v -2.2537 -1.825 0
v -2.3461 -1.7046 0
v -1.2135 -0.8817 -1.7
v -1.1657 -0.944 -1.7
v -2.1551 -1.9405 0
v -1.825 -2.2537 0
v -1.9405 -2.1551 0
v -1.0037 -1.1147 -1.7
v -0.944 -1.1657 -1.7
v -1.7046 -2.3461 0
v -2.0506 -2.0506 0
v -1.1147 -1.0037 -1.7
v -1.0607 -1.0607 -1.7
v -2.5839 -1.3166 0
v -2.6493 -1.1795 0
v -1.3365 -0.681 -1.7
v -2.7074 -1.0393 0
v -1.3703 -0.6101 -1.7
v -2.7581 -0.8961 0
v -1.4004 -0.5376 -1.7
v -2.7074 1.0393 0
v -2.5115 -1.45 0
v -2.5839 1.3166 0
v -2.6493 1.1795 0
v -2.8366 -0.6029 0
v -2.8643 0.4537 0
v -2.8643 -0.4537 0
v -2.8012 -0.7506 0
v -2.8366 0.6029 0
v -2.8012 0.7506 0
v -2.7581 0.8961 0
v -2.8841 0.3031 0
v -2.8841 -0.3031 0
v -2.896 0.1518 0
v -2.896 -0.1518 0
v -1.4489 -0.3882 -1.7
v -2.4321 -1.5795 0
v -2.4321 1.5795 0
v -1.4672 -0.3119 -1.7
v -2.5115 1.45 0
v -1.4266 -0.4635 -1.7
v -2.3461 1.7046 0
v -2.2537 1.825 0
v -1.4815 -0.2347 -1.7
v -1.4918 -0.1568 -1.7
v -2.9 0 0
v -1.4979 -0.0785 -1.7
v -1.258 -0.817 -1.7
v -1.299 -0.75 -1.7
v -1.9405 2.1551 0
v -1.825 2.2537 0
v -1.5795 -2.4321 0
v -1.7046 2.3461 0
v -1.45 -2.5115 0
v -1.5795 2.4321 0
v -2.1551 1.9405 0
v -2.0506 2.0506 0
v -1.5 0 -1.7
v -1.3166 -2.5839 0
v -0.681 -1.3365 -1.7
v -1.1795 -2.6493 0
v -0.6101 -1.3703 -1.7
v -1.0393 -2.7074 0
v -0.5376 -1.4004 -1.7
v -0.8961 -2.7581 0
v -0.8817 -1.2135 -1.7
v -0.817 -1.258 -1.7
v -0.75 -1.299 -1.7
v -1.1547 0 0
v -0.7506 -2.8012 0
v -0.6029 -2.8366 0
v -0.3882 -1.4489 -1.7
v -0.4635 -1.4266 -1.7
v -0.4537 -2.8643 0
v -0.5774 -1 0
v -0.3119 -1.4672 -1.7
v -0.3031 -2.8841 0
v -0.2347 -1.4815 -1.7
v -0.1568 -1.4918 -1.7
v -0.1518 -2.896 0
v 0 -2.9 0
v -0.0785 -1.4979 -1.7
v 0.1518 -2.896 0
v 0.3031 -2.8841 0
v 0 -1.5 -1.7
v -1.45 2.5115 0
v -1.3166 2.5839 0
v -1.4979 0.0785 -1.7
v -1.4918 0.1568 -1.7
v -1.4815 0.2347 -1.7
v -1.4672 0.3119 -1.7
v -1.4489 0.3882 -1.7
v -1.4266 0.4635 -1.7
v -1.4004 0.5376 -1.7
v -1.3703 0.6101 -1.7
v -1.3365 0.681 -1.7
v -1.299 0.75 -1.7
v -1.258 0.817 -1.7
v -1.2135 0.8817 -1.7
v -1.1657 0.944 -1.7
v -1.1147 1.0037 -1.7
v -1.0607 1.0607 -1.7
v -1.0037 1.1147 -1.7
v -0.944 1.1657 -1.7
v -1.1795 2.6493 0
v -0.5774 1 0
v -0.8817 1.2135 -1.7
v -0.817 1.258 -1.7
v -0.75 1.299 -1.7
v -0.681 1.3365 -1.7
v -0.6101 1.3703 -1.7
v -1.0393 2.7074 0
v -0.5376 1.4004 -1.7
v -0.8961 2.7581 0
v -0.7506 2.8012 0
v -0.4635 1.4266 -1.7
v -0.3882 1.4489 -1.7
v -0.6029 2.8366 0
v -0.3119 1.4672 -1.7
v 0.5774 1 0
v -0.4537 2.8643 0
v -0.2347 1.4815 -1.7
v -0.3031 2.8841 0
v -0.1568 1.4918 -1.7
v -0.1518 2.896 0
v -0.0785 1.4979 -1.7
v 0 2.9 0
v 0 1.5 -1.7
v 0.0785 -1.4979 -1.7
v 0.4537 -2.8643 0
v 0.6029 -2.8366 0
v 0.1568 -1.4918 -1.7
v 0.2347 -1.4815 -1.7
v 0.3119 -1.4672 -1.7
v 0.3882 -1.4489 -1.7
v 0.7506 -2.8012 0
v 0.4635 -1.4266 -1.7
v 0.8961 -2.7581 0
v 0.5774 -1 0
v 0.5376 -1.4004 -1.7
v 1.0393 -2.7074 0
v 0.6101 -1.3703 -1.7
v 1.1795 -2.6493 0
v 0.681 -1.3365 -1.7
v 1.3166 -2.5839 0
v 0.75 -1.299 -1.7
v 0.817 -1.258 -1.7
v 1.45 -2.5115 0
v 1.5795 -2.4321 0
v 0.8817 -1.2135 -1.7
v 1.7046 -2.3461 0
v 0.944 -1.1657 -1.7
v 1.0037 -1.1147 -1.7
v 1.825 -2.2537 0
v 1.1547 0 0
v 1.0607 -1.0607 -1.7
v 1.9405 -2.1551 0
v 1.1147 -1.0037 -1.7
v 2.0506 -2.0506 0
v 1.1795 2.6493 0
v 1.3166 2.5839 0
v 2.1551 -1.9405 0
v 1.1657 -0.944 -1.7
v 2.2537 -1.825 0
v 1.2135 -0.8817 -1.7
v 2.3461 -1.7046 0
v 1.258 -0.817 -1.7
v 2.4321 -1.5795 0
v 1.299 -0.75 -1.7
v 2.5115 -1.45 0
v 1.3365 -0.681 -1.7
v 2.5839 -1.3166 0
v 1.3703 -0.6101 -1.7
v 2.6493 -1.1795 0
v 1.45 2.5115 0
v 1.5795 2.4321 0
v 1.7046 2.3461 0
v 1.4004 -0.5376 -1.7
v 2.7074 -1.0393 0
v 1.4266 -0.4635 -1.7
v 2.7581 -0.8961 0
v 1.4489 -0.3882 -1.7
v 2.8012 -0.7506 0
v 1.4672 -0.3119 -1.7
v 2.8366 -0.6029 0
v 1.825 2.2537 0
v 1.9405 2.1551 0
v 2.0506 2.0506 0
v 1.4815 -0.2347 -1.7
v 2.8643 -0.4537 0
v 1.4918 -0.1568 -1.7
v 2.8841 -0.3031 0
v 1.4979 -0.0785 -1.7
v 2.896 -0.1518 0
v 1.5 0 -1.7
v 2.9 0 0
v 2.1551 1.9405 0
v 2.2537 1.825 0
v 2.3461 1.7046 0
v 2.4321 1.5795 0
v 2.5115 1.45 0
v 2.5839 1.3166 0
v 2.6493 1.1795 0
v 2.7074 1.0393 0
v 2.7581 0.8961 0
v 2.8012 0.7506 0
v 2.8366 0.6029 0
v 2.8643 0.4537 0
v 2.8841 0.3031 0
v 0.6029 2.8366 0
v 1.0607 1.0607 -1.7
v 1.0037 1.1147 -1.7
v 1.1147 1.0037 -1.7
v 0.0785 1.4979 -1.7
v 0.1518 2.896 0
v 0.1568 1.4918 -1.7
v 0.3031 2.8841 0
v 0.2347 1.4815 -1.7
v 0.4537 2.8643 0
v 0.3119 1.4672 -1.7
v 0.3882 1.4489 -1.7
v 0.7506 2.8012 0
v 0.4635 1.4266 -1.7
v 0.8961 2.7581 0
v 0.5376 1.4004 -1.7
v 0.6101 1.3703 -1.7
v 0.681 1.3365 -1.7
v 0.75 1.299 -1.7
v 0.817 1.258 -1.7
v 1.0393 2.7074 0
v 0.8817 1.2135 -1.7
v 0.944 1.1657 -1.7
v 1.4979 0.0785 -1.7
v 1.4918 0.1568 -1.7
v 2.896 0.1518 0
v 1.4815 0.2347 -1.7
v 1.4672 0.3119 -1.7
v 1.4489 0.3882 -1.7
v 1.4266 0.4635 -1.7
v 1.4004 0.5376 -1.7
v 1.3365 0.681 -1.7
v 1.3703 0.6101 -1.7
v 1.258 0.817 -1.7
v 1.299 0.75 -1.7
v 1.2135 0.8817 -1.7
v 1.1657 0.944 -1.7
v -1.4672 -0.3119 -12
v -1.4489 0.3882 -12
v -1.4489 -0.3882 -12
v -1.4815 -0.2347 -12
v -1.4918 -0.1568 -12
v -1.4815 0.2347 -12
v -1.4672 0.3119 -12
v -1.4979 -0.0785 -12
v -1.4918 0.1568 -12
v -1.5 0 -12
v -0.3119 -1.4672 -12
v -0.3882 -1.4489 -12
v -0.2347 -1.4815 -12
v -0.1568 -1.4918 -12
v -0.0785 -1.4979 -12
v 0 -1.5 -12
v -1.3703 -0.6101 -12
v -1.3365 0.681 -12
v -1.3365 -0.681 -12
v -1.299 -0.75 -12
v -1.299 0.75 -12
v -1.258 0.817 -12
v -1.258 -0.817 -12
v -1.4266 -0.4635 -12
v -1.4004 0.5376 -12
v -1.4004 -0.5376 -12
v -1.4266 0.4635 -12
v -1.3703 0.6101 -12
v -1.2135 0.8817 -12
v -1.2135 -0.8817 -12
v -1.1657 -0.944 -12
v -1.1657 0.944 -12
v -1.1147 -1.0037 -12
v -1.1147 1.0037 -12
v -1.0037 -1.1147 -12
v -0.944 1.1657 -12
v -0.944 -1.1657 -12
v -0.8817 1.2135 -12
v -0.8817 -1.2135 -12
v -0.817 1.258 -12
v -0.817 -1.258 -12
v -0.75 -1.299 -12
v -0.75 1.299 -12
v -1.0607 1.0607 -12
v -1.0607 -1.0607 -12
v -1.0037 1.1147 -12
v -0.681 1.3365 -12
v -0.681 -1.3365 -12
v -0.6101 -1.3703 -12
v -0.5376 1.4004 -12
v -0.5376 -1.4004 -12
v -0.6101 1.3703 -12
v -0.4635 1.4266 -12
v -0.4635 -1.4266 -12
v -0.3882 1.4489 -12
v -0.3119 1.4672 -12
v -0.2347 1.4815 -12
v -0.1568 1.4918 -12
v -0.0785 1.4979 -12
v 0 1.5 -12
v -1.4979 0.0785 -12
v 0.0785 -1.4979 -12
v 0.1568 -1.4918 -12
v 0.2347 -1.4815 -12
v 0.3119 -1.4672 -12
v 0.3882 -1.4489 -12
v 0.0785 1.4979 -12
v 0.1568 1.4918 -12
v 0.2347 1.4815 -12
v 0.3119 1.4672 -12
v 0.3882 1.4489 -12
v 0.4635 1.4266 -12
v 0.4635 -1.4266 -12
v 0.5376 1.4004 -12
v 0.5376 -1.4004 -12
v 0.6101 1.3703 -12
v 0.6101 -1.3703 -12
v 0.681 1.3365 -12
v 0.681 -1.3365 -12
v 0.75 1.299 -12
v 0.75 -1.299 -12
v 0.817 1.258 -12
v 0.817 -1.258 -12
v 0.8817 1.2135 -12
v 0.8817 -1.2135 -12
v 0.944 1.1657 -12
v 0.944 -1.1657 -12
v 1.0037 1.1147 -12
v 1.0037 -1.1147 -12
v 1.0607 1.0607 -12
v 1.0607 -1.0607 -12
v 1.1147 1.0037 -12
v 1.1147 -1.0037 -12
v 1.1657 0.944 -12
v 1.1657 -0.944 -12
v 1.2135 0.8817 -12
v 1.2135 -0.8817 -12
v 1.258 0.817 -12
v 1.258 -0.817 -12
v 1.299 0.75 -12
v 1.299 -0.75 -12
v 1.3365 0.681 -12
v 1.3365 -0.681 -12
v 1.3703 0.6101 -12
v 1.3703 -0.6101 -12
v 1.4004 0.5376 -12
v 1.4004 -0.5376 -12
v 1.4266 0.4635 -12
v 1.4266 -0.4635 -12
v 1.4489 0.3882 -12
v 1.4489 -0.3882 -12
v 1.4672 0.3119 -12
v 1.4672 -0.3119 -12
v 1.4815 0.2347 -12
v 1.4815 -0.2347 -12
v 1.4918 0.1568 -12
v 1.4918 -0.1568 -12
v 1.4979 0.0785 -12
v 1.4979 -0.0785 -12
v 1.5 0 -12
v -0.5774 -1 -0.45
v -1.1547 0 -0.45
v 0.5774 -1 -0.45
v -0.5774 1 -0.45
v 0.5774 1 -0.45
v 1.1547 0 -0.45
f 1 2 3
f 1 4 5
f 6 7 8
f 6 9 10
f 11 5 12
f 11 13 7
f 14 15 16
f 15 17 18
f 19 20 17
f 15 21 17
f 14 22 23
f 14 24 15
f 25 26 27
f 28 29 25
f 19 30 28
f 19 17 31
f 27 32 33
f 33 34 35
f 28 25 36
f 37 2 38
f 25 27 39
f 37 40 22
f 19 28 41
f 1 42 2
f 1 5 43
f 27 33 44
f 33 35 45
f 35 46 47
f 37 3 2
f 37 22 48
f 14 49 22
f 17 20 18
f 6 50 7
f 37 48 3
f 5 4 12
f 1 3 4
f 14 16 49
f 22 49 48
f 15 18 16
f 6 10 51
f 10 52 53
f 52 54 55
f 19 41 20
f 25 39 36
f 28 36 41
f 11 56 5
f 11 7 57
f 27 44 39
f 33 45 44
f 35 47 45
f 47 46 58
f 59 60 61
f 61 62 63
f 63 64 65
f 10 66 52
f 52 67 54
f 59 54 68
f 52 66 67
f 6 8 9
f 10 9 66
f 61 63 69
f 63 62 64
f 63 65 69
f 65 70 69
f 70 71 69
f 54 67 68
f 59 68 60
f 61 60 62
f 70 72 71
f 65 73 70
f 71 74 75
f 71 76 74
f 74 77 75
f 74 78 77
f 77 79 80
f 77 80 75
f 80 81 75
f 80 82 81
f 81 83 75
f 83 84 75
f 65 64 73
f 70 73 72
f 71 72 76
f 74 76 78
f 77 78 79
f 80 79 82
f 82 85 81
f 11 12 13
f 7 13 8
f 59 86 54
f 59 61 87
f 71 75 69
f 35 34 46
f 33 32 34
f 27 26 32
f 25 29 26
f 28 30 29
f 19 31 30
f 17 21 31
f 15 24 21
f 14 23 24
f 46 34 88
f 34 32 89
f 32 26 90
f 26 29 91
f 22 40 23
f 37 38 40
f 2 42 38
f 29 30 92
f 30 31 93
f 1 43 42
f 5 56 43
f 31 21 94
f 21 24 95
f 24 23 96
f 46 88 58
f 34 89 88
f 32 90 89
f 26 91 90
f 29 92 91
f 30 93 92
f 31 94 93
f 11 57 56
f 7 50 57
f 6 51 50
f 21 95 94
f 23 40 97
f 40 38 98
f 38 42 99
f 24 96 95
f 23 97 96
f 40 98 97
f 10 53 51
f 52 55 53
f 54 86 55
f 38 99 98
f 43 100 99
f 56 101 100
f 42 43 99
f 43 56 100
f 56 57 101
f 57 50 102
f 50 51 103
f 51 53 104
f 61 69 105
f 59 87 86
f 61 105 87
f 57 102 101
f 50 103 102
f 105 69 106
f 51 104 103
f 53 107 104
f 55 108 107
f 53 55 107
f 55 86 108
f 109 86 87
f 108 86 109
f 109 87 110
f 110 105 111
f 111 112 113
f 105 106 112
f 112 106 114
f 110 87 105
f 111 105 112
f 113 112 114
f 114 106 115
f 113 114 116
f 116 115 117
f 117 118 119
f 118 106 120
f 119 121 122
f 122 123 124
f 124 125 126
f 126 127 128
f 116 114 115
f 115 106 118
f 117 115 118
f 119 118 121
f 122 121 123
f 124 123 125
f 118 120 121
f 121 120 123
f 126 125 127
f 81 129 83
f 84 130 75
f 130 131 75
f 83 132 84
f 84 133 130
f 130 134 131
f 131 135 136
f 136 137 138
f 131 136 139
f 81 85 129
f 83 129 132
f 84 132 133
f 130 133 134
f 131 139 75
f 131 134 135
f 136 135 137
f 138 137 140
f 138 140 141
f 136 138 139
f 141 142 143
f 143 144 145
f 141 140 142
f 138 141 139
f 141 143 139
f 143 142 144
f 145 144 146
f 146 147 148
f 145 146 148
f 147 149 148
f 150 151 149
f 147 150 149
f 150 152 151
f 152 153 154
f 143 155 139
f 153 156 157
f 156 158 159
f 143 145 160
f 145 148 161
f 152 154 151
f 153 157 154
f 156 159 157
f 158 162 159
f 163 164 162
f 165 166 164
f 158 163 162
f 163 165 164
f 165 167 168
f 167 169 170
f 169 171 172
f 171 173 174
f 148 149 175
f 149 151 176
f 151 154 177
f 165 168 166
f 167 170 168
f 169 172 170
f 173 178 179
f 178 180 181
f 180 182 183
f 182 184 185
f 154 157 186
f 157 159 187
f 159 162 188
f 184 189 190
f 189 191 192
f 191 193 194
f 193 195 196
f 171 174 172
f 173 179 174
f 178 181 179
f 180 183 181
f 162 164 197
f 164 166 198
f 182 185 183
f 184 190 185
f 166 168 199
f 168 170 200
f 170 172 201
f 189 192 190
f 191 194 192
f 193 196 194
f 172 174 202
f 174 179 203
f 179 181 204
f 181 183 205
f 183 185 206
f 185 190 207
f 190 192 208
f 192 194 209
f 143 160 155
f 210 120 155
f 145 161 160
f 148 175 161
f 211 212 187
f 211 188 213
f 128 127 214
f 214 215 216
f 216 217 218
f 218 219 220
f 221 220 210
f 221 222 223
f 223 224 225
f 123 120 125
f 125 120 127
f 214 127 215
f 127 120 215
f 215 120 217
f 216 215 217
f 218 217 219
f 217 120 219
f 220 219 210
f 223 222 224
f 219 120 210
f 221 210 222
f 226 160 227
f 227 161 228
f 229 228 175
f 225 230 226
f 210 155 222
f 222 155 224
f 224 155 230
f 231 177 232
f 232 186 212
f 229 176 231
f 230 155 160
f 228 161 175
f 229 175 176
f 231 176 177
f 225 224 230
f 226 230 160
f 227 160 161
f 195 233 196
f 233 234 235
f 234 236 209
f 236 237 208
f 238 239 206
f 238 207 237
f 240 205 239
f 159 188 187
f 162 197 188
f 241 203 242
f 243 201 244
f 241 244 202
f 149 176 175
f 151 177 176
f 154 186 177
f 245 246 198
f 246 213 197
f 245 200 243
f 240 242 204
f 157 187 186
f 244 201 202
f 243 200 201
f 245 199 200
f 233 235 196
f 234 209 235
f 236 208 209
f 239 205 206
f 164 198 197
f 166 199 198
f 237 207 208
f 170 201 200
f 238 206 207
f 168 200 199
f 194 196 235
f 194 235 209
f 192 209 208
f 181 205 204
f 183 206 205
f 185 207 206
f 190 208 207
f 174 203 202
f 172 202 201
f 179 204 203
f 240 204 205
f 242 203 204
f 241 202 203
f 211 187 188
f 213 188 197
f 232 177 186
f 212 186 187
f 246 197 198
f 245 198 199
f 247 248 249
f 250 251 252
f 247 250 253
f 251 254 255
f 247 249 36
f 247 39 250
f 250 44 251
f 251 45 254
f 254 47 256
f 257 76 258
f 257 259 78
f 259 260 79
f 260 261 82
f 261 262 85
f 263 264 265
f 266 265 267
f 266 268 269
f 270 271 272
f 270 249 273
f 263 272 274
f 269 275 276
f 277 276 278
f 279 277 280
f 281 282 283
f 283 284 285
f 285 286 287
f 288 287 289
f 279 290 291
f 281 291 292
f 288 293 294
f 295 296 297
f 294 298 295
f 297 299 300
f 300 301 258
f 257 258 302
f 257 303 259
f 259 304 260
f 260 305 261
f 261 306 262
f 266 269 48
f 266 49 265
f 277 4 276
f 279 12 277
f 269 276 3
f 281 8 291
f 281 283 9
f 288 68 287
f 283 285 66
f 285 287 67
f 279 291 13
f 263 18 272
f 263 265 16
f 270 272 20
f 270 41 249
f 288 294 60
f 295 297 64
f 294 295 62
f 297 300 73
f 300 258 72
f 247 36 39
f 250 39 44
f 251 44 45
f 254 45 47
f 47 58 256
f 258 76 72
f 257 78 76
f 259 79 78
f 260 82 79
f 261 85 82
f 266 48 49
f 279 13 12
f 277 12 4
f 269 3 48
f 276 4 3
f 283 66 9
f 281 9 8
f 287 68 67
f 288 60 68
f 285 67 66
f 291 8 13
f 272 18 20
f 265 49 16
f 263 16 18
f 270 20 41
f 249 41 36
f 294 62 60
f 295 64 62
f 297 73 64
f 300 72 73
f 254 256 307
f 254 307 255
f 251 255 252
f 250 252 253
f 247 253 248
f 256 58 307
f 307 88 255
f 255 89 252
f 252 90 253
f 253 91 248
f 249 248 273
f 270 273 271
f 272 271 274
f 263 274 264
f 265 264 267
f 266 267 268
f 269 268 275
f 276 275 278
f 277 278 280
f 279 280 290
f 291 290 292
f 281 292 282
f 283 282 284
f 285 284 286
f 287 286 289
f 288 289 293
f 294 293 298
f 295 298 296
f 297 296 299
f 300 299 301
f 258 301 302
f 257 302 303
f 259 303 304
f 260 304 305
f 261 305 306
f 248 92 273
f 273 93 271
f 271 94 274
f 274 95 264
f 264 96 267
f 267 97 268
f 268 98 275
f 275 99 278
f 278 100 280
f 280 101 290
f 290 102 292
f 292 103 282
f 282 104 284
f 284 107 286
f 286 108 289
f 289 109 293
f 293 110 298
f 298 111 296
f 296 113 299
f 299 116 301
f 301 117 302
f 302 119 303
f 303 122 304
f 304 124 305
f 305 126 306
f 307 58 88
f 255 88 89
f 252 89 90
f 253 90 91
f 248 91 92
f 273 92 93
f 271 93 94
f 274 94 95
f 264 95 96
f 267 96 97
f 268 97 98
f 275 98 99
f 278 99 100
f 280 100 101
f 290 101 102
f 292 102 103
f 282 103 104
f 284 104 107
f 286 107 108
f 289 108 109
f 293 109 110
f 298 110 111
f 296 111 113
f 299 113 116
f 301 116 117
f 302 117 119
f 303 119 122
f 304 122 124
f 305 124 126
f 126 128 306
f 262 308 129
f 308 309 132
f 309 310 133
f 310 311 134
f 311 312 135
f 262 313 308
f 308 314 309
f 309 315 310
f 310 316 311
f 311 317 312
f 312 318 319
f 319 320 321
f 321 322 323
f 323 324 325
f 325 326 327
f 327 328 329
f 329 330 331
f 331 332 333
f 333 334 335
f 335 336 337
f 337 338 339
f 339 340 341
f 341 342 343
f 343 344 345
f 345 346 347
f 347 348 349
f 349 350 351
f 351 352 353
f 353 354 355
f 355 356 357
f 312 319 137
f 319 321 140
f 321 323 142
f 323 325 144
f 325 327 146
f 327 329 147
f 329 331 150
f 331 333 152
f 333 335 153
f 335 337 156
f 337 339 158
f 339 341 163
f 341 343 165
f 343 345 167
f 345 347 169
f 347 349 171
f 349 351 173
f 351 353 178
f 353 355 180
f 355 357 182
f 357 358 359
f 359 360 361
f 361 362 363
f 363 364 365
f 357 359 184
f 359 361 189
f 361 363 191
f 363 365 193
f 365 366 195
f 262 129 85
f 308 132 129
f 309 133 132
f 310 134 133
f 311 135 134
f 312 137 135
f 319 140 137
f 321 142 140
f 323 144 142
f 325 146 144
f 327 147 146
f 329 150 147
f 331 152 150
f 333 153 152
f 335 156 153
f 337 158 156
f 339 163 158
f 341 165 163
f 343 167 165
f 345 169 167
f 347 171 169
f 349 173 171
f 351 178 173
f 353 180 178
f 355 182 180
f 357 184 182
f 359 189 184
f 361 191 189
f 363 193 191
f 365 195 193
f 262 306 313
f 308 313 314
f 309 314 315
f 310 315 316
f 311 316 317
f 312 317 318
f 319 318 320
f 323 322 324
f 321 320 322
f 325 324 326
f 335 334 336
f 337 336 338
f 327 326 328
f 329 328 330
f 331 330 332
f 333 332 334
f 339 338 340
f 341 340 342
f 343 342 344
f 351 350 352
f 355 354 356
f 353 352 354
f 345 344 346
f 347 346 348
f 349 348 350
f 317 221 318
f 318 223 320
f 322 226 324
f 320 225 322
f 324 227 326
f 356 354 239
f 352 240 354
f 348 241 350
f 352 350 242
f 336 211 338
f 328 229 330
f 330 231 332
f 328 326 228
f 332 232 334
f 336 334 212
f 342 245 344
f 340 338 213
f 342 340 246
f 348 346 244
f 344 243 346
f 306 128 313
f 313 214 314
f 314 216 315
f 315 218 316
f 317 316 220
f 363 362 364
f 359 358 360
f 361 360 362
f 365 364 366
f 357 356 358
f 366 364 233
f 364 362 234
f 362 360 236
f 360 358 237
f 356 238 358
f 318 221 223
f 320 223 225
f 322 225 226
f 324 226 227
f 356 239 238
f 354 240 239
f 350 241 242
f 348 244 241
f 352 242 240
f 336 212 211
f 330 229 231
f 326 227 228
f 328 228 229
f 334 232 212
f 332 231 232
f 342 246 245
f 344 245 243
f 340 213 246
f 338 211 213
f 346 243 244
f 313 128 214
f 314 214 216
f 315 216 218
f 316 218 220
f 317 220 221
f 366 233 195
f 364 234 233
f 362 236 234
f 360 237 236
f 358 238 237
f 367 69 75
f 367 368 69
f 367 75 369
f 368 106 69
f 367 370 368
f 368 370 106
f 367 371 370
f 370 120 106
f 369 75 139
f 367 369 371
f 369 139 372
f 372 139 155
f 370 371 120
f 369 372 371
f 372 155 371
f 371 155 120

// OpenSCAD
// file: C:/gh/oomlout_oobb_part_motor_gearbox_wave_drive_version_5/parts/oobb_part_motor_gearbox_wave_drive_version_5_12_to_1_reduction/compact_helpers.scad
// Reusable native geometry helpers.
function polar(r,a)=[r*cos(a),r*sin(a)];
function rotate_point(p,a)=[p[0]*cos(a)-p[1]*sin(a),p[0]*sin(a)+p[1]*cos(a)];
function profile_point(t)=let(
    s=sqrt(pow(pitch_radius,2)-pow(eccentricity*sin(cavity_count*t),2)),
    r=eccentricity*cos(cavity_count*t)+s,
    xi=atan2(eccentricity*cavity_count*sin(cavity_count*t),s),
    rr=roller_radius+profile_clearance)
    [r*cos(t)+rr*cos(t+xi),r*sin(t)+rr*sin(t+xi)];
function profile_points(upper=false)=[for(i=[0:cavity_count*profile_samples_per_cavity-1])
    rotate_point(profile_point(360*i/(cavity_count*profile_samples_per_cavity)),0)];
function roller_position(i,a,upper=false)=let(
    t=-a/roller_count+360*i/roller_count,
    rel=t-a-(upper?180:0),
    r=eccentricity*cos(rel)+sqrt(pow(pitch_radius,2)-pow(eccentricity*sin(rel),2))) polar(r,t);
module tube(ro,ri,h) { difference() { cylinder(r=ro,h=h); translate([0,0,-eps]) cylinder(r=ri,h=h+2*eps); } }
module screw_hole(size,h) { scale([1,1,h]) { if(size=="m2") oobb_hole_m2(); if(size=="m3") oobb_hole_m3(); if(size=="m6") oobb_hole_m6(); } }
module socket_recess(size,depth) {
    // OOBB socket head starts at the under-head plane and extends outward.
    scale([1,1,depth/(size=="m3"?3.2:2.2)]) {
        if(size=="m3") oobb_socket_m3(); else oobb_socket_m2();
    }
}
module at_mounts(points) { for(p=points) translate([p[0],p[1],0]) children(); }
module shaft_cut(h,fit=shaft_fit_clearance) {
    linear_extrude(h) intersection() {
        circle(r=input_shaft_diameter/2+fit);
        translate([-10,-10]) square([10+input_shaft_diameter/2-input_shaft_flat_depth+fit,20]);
    }
}
module rounded_rectangle_plate(size=[119,119,3],radius=1.5) {
    hull() for(x=[-1,1],y=[-1,1]) translate([x*(size[0]/2-radius),y*(size[1]/2-radius),0]) cylinder(r=radius,h=size[2]);
}
module grid_cuts(h) {
    // Actual OOBB grid centres: six units are centred on half-pitch offsets.
    for(i=[0:base_width-1],j=[0:base_height-1])
        let(x=(i-(base_width-1)/2)*oobb_grid_pitch,y=(j-(base_height-1)/2)*oobb_grid_pitch)
        if(sqrt(x*x+y*y)>housing_radius+3.5)
            translate([x,y,-eps]) screw_hole("m6",h+2*eps);
}
module wave_generator() {
    render(convexity=20) difference() {
        tube(wave_radius,12.6,wave_height);
        translate([0,0,wave_seat_z]) cylinder(r=13.5+bearing_seat_clearance,h=wave_height);
        translate([0,0,wave_height-wave_cap_depth]) cylinder(r=22.15,h=wave_cap_depth+eps);
        at_mounts(wave_mounts) {
            translate([0,0,-eps]) screw_hole("m3",wave_height+2*eps);
            translate([0,0,wave_nut_z]) scale([1,1,(wave_height-wave_cap_depth-wave_nut_z+eps)/2.7]) oobb_nut_m3();
        }
    }
}
module wave_cap() {
    render(convexity=20) difference() {
        tube(22,12.6,wave_cap_depth);
        at_mounts(wave_mounts) {
            translate([0,0,-eps]) screw_hole("m3",wave_cap_depth+2*eps);
            translate([0,0,wave_cap_depth-wave_head_recess]) socket_recess("m3",wave_head_recess+eps);
        }
    }
}
// file: C:/gh/oomlout_oobb_part_motor_gearbox_wave_drive_version_5/parts/oobb_part_motor_gearbox_wave_drive_version_5_12_to_1_reduction/oobb_hardware.scad
module oobb_rounded_rectangle_edges(size, radius, radius_top, radius_bottom) {
      rt=radius_top; rb=radius_bottom; depth=size[2]; n=16;
      lower=rb==0 ? [[radius,0]] :
        [for(i=[0:n]) let(a=-90+90*i/n) [radius-rb+rb*cos(a),rb+rb*sin(a)]];
      upper=rt==0 ? [[radius,depth]] :
        [for(i=[0:n]) let(a=90*i/n) [radius-rt+rt*cos(a),depth-rt+rt*sin(a)]];
      hull() for(x=[-size[0]/2+radius,size[0]/2-radius])
        for(y=[-size[1]/2+radius,size[1]/2-radius])
          translate([x,y,0]) rotate_extrude()
            polygon(concat([[0,0]],lower,upper,[[0,depth]]));
    }
// Generated from installed OOBB v5. All primitives use overhang=True.

module oobb_motor_plate_body() {


difference() {
	union() {
		translate(v = [0, 0, 0]) {
			rotate(a = [0, 0, 0]) {
				difference() {
					union() {
						oobb_rounded_rectangle_edges(radius = 1.5, radius_bottom = 1.5, radius_top = 1.5, size = [89.0, 89.0, 4.0]);
					}
					union();
				}
			}
		}
	}
	union();
}

}

module oobb_hole_m2() {


difference() {
	union() {
		cylinder(h = 1, r = 1.35);
	}
	union();
}

}

module oobb_hole_m3() {


difference() {
	union() {
		cylinder(h = 1, r = 1.8);
	}
	union();
}

}

module oobb_hole_m6() {


difference() {
	union() {
		cylinder(h = 1, r = 3.25);
	}
	union();
}

}

module oobb_nut_m2() {


difference() {
	union() {
		translate(v = [0, 0, 0]) {
			rotate(a = [0, 0, 0]) {
				difference() {
					union() {
						linear_extrude(height = 2.2) {
							polygon(points = [[2.4234, 0.0], [1.2117000000000002, 2.0987259635312085], [-1.2116999999999996, 2.0987259635312085], [-2.4234, 2.967809053053696e-16], [-1.211700000000001, -2.098725963531208], [1.2116999999999984, -2.0987259635312094]]);
						}
						translate(v = [-1.25, -2.75, -0.3]) {
							cube(size = [2.5, 5.5, 0.3]);
						}
						translate(v = [-1.25, -1.25, -0.6]) {
							cube(size = [2.5, 2.5, 0.3]);
						}
						translate(v = [-1.25, -2.75, 2.2]) {
							cube(size = [2.5, 5.5, 0.3]);
						}
						translate(v = [-1.25, -1.25, 2.5]) {
							cube(size = [2.5, 2.5, 0.3]);
						}
					}
					union();
				}
			}
		}
	}
	union();
}

}

module oobb_socket_m2() {


difference() {
	union() {
		translate(v = [0, 0, 0]) {
			rotate(a = [0, 0, 0]) {
				difference() {
					union() {
						cylinder(h = 2.2, r = 2.1);
						translate(v = [-1.25, -2.75, -0.3]) {
							cube(size = [2.5, 5.5, 0.3]);
						}
						translate(v = [-1.25, -1.25, -0.6]) {
							cube(size = [2.5, 2.5, 0.3]);
						}
					}
					union();
				}
			}
		}
	}
	union();
}

}

module oobb_nut_m3() {


difference() {
	union() {
		translate(v = [0, 0, 0]) {
			rotate(a = [0, 0, 0]) {
				difference() {
					union() {
						linear_extrude(height = 2.7) {
							polygon(points = [[3.4619999999999997, 0.0], [1.7310000000000003, 2.9981799479017264], [-1.7309999999999992, 2.9981799479017264], [-3.4619999999999997, 4.2397272186481365e-16], [-1.7310000000000014, -2.998179947901726], [1.7309999999999977, -2.9981799479017277]]);
						}
						translate(v = [-1.75, -3.25, -0.3]) {
							cube(size = [3.5, 6.5, 0.3]);
						}
						translate(v = [-1.75, -1.75, -0.6]) {
							cube(size = [3.5, 3.5, 0.3]);
						}
						translate(v = [-1.75, -3.25, 2.7]) {
							cube(size = [3.5, 6.5, 0.3]);
						}
						translate(v = [-1.75, -1.75, 3.0]) {
							cube(size = [3.5, 3.5, 0.3]);
						}
					}
					union();
				}
			}
		}
	}
	union();
}

}

module oobb_socket_m3() {


difference() {
	union() {
		translate(v = [0, 0, 0]) {
			rotate(a = [0, 0, 0]) {
				difference() {
					union() {
						cylinder(h = 3.2, r = 3.0);
						translate(v = [-1.75, -3.25, -0.3]) {
							cube(size = [3.5, 6.5, 0.3]);
						}
						translate(v = [-1.75, -1.75, -0.6]) {
							cube(size = [3.5, 3.5, 0.3]);
						}
					}
					union();
				}
			}
		}
	}
	union();
}

}

module oobb_nut_m6() {


difference() {
	union() {
		translate(v = [0, 0, 0]) {
			rotate(a = [0, 0, 0]) {
				difference() {
					union() {
						linear_extrude(height = 5.2) {
							polygon(points = [[5.914249999999999, 0.0], [2.957125, 5.1218907443321156], [-2.9571249999999982, 5.1218907443321156], [-5.914249999999999, 7.242867331857232e-16], [-2.9571250000000022, -5.121890744332115], [2.9571249999999956, -5.121890744332118]]);
						}
						translate(v = [-2.875, -5.0, -0.3]) {
							cube(size = [5.75, 10, 0.3]);
						}
						translate(v = [-2.875, -2.875, -0.6]) {
							cube(size = [5.75, 5.75, 0.3]);
						}
						translate(v = [-2.875, -5.0, 5.2]) {
							cube(size = [5.75, 10, 0.3]);
						}
						translate(v = [-2.875, -2.875, 5.5]) {
							cube(size = [5.75, 5.75, 0.3]);
						}
					}
					union();
				}
			}
		}
	}
	union();
}

}
// file: C:/gh/oomlout_oobb_part_motor_gearbox_wave_drive_version_5/parts/oobb_part_motor_gearbox_wave_drive_version_5_12_to_1_reduction/parameters.scad
// Generated by working_scad.py. Edit the Python recipe to persist changes.
style = "version_5";
reduction = 12;
bearing_output = "6810";
bearing_wave = "6704";
roller_diameter = 7.0;
roller_bore_diameter = 3.2;
roller_length = 12.0;
roller_material = "nylon";
roller_bank_count = 1;
motor_plate_depth = 4.0;
motor_body_depth = 40.0;
motor_shaft_length = 24.0;
motor_hole_pitch = 31.0;
motor_thread_depth = 6.0;
motor_pilot_diameter = 22.0;
motor_pilot_height = 2.0;
output_holder_wall = 7.0;
max_screw_length = 35.0;
eccentricity = 0.75;
wave_radius = 23.25;
profile_clearance = 0.15;
roller_slot_clearance = 0.3;
roller_end_clearance = 0.3;
cage_wall = 4.0;
cage_plate_depth = 3.0;
bearing_seat_clearance = 0.1;
journal_clearance = 0.05;
bearing_axial_clearance = 0.2;
output_plate_diameter = 65.0;
output_plate_depth = 6.0;
output_grid_pitch = 15.0;
output_face_clearance = 0.3;
output_socket_recess = 4.0;
output_screw_length = 16;
output_nut_depth = 5.2;
output_nut_height = 5.0;
motor_shaft_end_clearance = 0.5;
base_width = 6;
base_height = 6;
oobb_grid_pitch = 15.0;
oobb_size_allowance = 1.0;
base_edge_radius = 1.5;
housing_flange_corner_radius = 1.5;
housing_screw_pitch_radius = 35.5;
housing_screw_count = 6;
input_shaft_diameter = 5.0;
input_shaft_flat_depth = 0.5;
shaft_fit_clearance = 0.1;
cage_screw_count = 4;
profile_samples_per_cavity = 100;
circle_fragments = 120;
overhang = true;
run_scad = true;
run_solidcraft = false;
generate_stl = true;
generate_previews = true;
generate_renders = true;
validate_geometry = true;
package_outputs = true;
render_threads = 8;
variant = "default";
// main file
include <C:/gh/oomlout_oobb_part_motor_gearbox_wave_drive_version_5/parts/oobb_part_motor_gearbox_wave_drive_version_5_12_to_1_reduction/parameters.scad>
include <C:/gh/oomlout_oobb_part_motor_gearbox_wave_drive_version_5/parts/oobb_part_motor_gearbox_wave_drive_version_5_12_to_1_reduction/oobb_hardware.scad>
include <C:/gh/oomlout_oobb_part_motor_gearbox_wave_drive_version_5/parts/oobb_part_motor_gearbox_wave_drive_version_5_12_to_1_reduction/geometry.scad>
difference() { 

difference() {
	union() {
		translate(v = [0, 0, 0]) {
			rotate(a = [0, 0, 0]) {
				difference() {
					union() {
						translate(v = [0, 0, -1.7]) {
							cylinder(h = 1.7, r1 = 1.5, r2 = 2.9);
						}
						translate(v = [0, 0, -12.0]) {
							cylinder(h = 12, r = 1.5);
						}
					}
					union();
				}
			}
		}
	}
	union();
}
 translate([0,0,-0.45]) cylinder(r=1.1547005383792517,h=0.46,$fn=6); }
